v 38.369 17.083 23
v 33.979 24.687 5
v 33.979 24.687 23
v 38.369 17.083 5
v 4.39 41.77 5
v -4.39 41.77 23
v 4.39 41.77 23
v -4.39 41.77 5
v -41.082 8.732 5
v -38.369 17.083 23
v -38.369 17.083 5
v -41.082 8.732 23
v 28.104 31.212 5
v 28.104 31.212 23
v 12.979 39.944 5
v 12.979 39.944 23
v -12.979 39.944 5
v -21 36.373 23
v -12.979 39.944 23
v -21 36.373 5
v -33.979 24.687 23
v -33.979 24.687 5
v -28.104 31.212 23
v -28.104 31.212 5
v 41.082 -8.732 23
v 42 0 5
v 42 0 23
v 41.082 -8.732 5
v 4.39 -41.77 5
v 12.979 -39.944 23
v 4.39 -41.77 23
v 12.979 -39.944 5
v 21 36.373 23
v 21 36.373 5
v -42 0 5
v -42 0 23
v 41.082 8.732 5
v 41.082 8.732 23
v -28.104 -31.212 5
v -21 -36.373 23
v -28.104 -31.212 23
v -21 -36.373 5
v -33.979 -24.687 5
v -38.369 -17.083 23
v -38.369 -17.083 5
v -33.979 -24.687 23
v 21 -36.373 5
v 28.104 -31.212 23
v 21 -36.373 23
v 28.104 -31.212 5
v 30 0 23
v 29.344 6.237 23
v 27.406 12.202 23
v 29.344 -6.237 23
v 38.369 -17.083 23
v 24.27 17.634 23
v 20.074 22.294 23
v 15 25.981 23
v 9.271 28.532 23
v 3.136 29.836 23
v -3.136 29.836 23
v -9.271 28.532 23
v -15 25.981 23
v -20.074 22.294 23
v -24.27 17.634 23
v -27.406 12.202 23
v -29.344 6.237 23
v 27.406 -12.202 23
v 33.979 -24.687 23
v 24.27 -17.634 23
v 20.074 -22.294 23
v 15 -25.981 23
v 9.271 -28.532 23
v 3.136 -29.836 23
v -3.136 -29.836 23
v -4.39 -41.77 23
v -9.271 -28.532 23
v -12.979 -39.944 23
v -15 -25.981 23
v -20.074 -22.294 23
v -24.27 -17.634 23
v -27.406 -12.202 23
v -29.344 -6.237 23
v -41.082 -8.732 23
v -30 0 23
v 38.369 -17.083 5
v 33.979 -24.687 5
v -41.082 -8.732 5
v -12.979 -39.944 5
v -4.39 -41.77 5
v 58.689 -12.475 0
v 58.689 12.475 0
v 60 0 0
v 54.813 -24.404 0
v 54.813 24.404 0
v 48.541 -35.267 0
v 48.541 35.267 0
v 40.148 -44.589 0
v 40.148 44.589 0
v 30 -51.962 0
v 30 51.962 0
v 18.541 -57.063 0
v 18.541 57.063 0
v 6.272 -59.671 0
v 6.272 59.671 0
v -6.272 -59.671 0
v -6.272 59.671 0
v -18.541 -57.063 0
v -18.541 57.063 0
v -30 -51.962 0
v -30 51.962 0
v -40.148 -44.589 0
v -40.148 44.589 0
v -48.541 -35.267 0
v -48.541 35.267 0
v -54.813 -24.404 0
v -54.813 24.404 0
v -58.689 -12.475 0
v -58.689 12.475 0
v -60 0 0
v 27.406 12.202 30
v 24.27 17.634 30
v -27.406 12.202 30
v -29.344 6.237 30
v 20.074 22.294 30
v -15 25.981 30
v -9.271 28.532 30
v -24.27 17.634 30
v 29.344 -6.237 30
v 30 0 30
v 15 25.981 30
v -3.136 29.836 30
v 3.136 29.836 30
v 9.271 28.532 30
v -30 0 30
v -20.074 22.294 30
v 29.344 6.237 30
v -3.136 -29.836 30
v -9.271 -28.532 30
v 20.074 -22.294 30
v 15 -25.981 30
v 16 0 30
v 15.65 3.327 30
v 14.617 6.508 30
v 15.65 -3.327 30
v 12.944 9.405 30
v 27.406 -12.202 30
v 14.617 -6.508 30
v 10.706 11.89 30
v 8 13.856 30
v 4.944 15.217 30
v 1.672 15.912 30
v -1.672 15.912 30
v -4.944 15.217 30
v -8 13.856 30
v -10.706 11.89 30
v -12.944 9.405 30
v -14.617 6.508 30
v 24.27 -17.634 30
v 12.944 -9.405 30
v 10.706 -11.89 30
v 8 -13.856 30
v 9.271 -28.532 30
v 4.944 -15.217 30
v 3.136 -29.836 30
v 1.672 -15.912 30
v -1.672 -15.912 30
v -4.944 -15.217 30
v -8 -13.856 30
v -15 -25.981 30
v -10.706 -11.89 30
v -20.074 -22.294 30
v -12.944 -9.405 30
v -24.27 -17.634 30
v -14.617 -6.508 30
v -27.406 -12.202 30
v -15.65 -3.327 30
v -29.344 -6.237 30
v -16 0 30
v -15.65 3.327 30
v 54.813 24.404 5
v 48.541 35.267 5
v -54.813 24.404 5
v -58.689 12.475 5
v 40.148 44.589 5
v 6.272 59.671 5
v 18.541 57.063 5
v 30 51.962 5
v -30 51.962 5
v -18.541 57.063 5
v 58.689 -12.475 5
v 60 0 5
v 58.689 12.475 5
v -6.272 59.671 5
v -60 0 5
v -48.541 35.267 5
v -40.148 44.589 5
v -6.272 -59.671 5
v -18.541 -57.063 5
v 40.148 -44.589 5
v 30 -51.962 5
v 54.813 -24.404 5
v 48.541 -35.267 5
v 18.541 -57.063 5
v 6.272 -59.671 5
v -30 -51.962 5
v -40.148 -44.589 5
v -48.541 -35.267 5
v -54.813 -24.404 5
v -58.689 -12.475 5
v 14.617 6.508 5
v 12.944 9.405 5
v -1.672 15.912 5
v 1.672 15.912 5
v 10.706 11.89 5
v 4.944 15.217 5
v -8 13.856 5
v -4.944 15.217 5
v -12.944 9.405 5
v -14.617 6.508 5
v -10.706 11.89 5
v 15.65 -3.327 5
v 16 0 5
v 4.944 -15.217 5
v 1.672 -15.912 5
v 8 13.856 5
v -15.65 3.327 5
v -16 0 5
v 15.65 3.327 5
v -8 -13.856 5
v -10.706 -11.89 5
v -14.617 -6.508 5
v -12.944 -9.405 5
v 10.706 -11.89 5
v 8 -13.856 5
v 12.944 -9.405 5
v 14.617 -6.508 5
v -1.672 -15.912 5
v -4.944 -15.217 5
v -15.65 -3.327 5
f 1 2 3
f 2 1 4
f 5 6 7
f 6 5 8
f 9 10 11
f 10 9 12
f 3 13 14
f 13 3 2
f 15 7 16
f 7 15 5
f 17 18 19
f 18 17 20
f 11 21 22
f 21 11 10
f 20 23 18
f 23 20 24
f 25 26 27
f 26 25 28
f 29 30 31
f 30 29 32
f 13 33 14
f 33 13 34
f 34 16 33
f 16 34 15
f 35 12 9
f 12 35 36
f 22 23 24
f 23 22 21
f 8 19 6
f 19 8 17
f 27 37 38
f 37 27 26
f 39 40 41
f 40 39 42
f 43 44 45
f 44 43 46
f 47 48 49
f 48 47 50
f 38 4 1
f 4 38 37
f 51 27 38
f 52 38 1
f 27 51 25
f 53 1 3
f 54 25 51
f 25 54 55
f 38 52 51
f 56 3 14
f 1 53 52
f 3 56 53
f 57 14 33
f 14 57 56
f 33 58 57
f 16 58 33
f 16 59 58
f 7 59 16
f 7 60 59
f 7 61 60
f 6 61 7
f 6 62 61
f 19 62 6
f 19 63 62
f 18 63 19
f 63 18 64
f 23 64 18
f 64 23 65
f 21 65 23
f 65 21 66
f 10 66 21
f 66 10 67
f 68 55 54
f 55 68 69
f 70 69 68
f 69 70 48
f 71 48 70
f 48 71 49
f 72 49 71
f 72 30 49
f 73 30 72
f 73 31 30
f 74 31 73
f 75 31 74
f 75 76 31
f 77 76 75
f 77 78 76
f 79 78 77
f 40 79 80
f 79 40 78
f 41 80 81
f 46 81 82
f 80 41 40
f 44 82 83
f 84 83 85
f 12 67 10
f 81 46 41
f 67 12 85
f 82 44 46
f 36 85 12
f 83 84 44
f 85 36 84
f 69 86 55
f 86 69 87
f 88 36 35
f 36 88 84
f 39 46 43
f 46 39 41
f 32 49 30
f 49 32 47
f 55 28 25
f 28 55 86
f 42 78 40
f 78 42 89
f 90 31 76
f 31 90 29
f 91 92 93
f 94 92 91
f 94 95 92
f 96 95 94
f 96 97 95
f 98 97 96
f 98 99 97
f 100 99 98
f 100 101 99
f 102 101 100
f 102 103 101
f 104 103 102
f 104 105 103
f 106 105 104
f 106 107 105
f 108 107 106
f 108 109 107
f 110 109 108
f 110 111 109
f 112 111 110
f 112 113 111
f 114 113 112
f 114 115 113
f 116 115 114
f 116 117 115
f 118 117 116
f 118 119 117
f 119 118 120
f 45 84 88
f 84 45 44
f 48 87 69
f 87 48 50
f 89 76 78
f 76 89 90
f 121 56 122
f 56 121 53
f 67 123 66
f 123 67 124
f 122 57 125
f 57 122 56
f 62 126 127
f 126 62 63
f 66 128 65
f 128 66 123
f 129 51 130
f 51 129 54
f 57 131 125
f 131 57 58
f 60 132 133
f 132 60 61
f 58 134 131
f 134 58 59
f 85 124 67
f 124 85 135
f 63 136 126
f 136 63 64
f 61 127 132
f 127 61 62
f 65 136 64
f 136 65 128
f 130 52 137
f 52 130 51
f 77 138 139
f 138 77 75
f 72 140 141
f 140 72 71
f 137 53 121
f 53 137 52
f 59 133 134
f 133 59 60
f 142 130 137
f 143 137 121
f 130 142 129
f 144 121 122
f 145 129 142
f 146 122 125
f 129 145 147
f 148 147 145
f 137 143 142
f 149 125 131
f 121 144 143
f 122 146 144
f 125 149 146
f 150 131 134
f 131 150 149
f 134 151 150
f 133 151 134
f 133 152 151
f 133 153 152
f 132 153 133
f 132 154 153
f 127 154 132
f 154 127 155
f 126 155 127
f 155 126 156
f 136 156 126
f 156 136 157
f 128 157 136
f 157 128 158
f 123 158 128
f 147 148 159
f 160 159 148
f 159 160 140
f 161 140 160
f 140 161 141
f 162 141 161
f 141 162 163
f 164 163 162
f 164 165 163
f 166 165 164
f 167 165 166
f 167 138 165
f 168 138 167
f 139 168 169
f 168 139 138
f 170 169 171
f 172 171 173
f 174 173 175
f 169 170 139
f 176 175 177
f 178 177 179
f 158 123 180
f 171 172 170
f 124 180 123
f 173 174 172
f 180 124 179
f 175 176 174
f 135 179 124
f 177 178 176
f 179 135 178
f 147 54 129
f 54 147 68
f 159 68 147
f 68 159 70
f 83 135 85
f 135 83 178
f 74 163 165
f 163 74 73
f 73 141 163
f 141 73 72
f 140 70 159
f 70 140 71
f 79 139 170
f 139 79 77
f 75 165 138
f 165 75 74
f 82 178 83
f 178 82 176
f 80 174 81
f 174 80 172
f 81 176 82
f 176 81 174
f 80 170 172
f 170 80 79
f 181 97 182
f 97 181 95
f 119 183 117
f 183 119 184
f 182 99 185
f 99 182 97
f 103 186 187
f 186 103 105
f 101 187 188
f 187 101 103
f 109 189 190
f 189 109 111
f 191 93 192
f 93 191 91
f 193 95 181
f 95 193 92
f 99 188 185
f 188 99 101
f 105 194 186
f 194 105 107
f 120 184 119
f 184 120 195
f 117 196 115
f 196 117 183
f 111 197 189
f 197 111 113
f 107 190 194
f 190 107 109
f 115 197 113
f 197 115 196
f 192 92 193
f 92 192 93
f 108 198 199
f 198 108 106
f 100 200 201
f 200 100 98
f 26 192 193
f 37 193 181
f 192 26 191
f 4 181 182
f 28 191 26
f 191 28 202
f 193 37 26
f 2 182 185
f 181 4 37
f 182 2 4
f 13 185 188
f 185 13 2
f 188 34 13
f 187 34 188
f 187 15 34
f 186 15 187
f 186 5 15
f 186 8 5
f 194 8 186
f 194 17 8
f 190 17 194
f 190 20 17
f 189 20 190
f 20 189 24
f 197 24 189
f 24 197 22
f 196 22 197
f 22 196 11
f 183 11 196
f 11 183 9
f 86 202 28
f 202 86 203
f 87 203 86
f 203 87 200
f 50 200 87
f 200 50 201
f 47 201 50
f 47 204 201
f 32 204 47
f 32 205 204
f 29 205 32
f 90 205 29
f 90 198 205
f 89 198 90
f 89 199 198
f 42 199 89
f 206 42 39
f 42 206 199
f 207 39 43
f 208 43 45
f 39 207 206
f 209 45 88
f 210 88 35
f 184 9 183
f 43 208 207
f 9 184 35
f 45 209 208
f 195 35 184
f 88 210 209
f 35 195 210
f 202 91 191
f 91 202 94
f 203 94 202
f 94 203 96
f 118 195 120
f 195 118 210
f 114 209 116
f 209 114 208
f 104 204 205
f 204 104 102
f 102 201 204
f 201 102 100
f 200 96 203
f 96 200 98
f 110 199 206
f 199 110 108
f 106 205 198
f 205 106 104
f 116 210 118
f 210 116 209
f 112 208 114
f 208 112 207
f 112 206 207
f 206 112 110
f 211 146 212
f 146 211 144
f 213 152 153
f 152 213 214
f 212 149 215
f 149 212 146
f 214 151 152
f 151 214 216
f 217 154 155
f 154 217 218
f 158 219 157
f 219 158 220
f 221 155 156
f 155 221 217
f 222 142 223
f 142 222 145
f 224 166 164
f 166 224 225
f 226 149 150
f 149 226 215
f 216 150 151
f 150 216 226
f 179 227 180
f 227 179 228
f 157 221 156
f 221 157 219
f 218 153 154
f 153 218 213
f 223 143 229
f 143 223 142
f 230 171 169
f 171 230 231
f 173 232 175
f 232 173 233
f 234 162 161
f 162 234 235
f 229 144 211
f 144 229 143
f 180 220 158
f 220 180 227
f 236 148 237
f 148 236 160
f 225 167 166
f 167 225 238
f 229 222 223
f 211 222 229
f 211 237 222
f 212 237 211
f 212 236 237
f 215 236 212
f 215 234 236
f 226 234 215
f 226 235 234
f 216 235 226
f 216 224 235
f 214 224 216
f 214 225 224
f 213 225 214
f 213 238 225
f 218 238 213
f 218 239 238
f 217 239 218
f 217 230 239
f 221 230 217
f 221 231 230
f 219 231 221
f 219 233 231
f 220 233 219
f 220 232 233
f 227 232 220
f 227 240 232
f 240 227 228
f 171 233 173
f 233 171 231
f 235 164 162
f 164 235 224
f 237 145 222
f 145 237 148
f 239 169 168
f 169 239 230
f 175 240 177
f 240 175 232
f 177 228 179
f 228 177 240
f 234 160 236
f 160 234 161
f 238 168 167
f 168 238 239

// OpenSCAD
difference() {
    union() {
        cylinder(h=23,r=42);
        cylinder(h=30,r=30);
        cylinder(h=5,r=60);
    }
    translate([0,0,5]) {
        cylinder(h=31,r=16);
    }    
}
